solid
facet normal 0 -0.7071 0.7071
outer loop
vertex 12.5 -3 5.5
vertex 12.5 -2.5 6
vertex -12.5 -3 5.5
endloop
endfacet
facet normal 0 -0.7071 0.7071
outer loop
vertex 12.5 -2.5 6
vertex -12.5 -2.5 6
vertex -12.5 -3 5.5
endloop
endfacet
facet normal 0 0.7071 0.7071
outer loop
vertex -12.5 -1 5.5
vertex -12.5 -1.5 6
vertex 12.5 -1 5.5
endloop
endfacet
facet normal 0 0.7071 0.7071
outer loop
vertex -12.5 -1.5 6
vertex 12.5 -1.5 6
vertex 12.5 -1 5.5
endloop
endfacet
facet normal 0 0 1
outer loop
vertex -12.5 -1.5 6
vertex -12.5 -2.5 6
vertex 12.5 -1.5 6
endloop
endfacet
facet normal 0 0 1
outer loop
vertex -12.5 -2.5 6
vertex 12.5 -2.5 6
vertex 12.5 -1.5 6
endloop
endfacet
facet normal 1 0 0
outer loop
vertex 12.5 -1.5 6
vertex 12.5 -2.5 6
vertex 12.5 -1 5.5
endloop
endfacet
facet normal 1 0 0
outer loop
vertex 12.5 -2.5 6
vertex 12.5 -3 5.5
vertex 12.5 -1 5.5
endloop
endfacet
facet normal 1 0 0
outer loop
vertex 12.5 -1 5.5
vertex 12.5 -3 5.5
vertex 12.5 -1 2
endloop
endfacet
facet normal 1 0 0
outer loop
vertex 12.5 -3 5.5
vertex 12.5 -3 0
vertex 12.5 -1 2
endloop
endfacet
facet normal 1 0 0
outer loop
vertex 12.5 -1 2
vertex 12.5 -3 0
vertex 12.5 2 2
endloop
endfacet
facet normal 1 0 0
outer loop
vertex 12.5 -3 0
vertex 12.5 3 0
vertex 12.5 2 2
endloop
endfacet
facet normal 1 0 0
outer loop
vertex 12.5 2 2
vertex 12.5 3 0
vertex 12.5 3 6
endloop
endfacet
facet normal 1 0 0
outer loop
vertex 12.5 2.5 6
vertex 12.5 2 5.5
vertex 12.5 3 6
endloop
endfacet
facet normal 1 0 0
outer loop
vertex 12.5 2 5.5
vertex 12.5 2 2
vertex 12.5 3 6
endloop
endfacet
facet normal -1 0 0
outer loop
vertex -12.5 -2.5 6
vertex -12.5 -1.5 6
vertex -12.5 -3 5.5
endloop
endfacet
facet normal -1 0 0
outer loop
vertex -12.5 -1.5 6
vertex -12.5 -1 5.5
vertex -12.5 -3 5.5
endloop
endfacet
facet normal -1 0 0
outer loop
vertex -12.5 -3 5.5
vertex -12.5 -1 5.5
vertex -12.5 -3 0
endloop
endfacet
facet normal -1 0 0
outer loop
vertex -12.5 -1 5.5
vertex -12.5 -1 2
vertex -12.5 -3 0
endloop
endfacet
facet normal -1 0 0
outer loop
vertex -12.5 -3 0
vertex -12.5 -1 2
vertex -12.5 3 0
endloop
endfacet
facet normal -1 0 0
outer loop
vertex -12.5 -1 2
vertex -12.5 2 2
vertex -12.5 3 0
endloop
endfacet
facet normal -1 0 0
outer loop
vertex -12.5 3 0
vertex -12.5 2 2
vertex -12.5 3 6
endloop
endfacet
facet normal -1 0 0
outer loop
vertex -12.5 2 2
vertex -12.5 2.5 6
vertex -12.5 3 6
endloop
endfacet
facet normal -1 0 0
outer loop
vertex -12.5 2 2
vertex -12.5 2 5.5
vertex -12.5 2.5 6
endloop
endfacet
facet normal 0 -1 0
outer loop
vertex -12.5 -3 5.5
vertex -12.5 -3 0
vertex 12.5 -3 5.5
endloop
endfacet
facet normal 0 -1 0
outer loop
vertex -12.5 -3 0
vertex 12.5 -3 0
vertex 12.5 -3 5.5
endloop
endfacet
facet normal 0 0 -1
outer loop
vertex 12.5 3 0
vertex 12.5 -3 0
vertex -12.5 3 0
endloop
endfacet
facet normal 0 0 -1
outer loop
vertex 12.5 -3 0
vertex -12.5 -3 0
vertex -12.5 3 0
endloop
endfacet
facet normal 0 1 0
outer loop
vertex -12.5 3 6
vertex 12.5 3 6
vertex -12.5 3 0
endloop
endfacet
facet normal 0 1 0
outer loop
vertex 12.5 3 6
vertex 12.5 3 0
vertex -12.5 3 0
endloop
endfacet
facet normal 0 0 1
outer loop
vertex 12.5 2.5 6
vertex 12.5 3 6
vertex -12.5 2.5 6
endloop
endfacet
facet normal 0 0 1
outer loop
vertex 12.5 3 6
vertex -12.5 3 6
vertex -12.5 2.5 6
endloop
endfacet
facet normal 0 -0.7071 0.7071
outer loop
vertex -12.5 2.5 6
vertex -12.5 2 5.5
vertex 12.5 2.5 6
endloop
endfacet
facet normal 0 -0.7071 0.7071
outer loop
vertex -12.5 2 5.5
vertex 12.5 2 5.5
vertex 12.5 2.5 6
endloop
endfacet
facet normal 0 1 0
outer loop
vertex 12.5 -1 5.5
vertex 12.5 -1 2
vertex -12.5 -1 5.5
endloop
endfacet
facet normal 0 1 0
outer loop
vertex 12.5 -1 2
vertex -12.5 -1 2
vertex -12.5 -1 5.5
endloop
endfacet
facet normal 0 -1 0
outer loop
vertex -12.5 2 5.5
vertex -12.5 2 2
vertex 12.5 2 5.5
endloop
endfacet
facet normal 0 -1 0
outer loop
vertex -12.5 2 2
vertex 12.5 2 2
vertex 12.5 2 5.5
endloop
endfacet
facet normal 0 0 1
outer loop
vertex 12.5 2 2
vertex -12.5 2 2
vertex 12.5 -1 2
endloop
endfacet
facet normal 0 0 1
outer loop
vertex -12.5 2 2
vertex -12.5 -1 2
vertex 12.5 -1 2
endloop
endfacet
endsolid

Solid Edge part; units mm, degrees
sketch "Sketch1" plane through (0, 0, 0) normal (0, 0, 1) x (1, 0, 0)
  line L0 (-12.5, -3) -> (12.5, -3)
  line L1 (12.5, -3) -> (12.5, 3)
  line L2 (12.5, 3) -> (-12.5, 3)
  line L3 (-12.5, 3) -> (-12.5, -3)
  dimension "D1" = 25
  dimension "D2" = 6
extrude "Protrusion1" add sketch "Sketch1" along normal blind 2
sketch "Sketch2" plane through (0, 0, 2) normal (0, 0, 1) x (1, 0, 0)
  line L0 (-12.5, 3) -> (12.5, 3)
  line L1 (12.5, 3) -> (12.5, 2)
  line L2 (12.5, 2) -> (-12.5, 2)
  line L3 (-12.5, 2) -> (-12.5, 3)
  line L4 (-12.5, -3) -> (12.5, -3)
  line L5 (12.5, -3) -> (12.5, -1)
  line L6 (12.5, -1) -> (-12.5, -1)
  line L7 (-12.5, -1) -> (-12.5, -3)
  dimension "D1" = 2
  dimension "D2" = 1
extrude "Extrusionsausprägung_2" add sketch "Sketch2" along normal blind 4
chamfer "Fase_1" distance 0.5 angle 45 3 edges at (0, -3, 6) (0, -1, 6) (0, 2, 6)
